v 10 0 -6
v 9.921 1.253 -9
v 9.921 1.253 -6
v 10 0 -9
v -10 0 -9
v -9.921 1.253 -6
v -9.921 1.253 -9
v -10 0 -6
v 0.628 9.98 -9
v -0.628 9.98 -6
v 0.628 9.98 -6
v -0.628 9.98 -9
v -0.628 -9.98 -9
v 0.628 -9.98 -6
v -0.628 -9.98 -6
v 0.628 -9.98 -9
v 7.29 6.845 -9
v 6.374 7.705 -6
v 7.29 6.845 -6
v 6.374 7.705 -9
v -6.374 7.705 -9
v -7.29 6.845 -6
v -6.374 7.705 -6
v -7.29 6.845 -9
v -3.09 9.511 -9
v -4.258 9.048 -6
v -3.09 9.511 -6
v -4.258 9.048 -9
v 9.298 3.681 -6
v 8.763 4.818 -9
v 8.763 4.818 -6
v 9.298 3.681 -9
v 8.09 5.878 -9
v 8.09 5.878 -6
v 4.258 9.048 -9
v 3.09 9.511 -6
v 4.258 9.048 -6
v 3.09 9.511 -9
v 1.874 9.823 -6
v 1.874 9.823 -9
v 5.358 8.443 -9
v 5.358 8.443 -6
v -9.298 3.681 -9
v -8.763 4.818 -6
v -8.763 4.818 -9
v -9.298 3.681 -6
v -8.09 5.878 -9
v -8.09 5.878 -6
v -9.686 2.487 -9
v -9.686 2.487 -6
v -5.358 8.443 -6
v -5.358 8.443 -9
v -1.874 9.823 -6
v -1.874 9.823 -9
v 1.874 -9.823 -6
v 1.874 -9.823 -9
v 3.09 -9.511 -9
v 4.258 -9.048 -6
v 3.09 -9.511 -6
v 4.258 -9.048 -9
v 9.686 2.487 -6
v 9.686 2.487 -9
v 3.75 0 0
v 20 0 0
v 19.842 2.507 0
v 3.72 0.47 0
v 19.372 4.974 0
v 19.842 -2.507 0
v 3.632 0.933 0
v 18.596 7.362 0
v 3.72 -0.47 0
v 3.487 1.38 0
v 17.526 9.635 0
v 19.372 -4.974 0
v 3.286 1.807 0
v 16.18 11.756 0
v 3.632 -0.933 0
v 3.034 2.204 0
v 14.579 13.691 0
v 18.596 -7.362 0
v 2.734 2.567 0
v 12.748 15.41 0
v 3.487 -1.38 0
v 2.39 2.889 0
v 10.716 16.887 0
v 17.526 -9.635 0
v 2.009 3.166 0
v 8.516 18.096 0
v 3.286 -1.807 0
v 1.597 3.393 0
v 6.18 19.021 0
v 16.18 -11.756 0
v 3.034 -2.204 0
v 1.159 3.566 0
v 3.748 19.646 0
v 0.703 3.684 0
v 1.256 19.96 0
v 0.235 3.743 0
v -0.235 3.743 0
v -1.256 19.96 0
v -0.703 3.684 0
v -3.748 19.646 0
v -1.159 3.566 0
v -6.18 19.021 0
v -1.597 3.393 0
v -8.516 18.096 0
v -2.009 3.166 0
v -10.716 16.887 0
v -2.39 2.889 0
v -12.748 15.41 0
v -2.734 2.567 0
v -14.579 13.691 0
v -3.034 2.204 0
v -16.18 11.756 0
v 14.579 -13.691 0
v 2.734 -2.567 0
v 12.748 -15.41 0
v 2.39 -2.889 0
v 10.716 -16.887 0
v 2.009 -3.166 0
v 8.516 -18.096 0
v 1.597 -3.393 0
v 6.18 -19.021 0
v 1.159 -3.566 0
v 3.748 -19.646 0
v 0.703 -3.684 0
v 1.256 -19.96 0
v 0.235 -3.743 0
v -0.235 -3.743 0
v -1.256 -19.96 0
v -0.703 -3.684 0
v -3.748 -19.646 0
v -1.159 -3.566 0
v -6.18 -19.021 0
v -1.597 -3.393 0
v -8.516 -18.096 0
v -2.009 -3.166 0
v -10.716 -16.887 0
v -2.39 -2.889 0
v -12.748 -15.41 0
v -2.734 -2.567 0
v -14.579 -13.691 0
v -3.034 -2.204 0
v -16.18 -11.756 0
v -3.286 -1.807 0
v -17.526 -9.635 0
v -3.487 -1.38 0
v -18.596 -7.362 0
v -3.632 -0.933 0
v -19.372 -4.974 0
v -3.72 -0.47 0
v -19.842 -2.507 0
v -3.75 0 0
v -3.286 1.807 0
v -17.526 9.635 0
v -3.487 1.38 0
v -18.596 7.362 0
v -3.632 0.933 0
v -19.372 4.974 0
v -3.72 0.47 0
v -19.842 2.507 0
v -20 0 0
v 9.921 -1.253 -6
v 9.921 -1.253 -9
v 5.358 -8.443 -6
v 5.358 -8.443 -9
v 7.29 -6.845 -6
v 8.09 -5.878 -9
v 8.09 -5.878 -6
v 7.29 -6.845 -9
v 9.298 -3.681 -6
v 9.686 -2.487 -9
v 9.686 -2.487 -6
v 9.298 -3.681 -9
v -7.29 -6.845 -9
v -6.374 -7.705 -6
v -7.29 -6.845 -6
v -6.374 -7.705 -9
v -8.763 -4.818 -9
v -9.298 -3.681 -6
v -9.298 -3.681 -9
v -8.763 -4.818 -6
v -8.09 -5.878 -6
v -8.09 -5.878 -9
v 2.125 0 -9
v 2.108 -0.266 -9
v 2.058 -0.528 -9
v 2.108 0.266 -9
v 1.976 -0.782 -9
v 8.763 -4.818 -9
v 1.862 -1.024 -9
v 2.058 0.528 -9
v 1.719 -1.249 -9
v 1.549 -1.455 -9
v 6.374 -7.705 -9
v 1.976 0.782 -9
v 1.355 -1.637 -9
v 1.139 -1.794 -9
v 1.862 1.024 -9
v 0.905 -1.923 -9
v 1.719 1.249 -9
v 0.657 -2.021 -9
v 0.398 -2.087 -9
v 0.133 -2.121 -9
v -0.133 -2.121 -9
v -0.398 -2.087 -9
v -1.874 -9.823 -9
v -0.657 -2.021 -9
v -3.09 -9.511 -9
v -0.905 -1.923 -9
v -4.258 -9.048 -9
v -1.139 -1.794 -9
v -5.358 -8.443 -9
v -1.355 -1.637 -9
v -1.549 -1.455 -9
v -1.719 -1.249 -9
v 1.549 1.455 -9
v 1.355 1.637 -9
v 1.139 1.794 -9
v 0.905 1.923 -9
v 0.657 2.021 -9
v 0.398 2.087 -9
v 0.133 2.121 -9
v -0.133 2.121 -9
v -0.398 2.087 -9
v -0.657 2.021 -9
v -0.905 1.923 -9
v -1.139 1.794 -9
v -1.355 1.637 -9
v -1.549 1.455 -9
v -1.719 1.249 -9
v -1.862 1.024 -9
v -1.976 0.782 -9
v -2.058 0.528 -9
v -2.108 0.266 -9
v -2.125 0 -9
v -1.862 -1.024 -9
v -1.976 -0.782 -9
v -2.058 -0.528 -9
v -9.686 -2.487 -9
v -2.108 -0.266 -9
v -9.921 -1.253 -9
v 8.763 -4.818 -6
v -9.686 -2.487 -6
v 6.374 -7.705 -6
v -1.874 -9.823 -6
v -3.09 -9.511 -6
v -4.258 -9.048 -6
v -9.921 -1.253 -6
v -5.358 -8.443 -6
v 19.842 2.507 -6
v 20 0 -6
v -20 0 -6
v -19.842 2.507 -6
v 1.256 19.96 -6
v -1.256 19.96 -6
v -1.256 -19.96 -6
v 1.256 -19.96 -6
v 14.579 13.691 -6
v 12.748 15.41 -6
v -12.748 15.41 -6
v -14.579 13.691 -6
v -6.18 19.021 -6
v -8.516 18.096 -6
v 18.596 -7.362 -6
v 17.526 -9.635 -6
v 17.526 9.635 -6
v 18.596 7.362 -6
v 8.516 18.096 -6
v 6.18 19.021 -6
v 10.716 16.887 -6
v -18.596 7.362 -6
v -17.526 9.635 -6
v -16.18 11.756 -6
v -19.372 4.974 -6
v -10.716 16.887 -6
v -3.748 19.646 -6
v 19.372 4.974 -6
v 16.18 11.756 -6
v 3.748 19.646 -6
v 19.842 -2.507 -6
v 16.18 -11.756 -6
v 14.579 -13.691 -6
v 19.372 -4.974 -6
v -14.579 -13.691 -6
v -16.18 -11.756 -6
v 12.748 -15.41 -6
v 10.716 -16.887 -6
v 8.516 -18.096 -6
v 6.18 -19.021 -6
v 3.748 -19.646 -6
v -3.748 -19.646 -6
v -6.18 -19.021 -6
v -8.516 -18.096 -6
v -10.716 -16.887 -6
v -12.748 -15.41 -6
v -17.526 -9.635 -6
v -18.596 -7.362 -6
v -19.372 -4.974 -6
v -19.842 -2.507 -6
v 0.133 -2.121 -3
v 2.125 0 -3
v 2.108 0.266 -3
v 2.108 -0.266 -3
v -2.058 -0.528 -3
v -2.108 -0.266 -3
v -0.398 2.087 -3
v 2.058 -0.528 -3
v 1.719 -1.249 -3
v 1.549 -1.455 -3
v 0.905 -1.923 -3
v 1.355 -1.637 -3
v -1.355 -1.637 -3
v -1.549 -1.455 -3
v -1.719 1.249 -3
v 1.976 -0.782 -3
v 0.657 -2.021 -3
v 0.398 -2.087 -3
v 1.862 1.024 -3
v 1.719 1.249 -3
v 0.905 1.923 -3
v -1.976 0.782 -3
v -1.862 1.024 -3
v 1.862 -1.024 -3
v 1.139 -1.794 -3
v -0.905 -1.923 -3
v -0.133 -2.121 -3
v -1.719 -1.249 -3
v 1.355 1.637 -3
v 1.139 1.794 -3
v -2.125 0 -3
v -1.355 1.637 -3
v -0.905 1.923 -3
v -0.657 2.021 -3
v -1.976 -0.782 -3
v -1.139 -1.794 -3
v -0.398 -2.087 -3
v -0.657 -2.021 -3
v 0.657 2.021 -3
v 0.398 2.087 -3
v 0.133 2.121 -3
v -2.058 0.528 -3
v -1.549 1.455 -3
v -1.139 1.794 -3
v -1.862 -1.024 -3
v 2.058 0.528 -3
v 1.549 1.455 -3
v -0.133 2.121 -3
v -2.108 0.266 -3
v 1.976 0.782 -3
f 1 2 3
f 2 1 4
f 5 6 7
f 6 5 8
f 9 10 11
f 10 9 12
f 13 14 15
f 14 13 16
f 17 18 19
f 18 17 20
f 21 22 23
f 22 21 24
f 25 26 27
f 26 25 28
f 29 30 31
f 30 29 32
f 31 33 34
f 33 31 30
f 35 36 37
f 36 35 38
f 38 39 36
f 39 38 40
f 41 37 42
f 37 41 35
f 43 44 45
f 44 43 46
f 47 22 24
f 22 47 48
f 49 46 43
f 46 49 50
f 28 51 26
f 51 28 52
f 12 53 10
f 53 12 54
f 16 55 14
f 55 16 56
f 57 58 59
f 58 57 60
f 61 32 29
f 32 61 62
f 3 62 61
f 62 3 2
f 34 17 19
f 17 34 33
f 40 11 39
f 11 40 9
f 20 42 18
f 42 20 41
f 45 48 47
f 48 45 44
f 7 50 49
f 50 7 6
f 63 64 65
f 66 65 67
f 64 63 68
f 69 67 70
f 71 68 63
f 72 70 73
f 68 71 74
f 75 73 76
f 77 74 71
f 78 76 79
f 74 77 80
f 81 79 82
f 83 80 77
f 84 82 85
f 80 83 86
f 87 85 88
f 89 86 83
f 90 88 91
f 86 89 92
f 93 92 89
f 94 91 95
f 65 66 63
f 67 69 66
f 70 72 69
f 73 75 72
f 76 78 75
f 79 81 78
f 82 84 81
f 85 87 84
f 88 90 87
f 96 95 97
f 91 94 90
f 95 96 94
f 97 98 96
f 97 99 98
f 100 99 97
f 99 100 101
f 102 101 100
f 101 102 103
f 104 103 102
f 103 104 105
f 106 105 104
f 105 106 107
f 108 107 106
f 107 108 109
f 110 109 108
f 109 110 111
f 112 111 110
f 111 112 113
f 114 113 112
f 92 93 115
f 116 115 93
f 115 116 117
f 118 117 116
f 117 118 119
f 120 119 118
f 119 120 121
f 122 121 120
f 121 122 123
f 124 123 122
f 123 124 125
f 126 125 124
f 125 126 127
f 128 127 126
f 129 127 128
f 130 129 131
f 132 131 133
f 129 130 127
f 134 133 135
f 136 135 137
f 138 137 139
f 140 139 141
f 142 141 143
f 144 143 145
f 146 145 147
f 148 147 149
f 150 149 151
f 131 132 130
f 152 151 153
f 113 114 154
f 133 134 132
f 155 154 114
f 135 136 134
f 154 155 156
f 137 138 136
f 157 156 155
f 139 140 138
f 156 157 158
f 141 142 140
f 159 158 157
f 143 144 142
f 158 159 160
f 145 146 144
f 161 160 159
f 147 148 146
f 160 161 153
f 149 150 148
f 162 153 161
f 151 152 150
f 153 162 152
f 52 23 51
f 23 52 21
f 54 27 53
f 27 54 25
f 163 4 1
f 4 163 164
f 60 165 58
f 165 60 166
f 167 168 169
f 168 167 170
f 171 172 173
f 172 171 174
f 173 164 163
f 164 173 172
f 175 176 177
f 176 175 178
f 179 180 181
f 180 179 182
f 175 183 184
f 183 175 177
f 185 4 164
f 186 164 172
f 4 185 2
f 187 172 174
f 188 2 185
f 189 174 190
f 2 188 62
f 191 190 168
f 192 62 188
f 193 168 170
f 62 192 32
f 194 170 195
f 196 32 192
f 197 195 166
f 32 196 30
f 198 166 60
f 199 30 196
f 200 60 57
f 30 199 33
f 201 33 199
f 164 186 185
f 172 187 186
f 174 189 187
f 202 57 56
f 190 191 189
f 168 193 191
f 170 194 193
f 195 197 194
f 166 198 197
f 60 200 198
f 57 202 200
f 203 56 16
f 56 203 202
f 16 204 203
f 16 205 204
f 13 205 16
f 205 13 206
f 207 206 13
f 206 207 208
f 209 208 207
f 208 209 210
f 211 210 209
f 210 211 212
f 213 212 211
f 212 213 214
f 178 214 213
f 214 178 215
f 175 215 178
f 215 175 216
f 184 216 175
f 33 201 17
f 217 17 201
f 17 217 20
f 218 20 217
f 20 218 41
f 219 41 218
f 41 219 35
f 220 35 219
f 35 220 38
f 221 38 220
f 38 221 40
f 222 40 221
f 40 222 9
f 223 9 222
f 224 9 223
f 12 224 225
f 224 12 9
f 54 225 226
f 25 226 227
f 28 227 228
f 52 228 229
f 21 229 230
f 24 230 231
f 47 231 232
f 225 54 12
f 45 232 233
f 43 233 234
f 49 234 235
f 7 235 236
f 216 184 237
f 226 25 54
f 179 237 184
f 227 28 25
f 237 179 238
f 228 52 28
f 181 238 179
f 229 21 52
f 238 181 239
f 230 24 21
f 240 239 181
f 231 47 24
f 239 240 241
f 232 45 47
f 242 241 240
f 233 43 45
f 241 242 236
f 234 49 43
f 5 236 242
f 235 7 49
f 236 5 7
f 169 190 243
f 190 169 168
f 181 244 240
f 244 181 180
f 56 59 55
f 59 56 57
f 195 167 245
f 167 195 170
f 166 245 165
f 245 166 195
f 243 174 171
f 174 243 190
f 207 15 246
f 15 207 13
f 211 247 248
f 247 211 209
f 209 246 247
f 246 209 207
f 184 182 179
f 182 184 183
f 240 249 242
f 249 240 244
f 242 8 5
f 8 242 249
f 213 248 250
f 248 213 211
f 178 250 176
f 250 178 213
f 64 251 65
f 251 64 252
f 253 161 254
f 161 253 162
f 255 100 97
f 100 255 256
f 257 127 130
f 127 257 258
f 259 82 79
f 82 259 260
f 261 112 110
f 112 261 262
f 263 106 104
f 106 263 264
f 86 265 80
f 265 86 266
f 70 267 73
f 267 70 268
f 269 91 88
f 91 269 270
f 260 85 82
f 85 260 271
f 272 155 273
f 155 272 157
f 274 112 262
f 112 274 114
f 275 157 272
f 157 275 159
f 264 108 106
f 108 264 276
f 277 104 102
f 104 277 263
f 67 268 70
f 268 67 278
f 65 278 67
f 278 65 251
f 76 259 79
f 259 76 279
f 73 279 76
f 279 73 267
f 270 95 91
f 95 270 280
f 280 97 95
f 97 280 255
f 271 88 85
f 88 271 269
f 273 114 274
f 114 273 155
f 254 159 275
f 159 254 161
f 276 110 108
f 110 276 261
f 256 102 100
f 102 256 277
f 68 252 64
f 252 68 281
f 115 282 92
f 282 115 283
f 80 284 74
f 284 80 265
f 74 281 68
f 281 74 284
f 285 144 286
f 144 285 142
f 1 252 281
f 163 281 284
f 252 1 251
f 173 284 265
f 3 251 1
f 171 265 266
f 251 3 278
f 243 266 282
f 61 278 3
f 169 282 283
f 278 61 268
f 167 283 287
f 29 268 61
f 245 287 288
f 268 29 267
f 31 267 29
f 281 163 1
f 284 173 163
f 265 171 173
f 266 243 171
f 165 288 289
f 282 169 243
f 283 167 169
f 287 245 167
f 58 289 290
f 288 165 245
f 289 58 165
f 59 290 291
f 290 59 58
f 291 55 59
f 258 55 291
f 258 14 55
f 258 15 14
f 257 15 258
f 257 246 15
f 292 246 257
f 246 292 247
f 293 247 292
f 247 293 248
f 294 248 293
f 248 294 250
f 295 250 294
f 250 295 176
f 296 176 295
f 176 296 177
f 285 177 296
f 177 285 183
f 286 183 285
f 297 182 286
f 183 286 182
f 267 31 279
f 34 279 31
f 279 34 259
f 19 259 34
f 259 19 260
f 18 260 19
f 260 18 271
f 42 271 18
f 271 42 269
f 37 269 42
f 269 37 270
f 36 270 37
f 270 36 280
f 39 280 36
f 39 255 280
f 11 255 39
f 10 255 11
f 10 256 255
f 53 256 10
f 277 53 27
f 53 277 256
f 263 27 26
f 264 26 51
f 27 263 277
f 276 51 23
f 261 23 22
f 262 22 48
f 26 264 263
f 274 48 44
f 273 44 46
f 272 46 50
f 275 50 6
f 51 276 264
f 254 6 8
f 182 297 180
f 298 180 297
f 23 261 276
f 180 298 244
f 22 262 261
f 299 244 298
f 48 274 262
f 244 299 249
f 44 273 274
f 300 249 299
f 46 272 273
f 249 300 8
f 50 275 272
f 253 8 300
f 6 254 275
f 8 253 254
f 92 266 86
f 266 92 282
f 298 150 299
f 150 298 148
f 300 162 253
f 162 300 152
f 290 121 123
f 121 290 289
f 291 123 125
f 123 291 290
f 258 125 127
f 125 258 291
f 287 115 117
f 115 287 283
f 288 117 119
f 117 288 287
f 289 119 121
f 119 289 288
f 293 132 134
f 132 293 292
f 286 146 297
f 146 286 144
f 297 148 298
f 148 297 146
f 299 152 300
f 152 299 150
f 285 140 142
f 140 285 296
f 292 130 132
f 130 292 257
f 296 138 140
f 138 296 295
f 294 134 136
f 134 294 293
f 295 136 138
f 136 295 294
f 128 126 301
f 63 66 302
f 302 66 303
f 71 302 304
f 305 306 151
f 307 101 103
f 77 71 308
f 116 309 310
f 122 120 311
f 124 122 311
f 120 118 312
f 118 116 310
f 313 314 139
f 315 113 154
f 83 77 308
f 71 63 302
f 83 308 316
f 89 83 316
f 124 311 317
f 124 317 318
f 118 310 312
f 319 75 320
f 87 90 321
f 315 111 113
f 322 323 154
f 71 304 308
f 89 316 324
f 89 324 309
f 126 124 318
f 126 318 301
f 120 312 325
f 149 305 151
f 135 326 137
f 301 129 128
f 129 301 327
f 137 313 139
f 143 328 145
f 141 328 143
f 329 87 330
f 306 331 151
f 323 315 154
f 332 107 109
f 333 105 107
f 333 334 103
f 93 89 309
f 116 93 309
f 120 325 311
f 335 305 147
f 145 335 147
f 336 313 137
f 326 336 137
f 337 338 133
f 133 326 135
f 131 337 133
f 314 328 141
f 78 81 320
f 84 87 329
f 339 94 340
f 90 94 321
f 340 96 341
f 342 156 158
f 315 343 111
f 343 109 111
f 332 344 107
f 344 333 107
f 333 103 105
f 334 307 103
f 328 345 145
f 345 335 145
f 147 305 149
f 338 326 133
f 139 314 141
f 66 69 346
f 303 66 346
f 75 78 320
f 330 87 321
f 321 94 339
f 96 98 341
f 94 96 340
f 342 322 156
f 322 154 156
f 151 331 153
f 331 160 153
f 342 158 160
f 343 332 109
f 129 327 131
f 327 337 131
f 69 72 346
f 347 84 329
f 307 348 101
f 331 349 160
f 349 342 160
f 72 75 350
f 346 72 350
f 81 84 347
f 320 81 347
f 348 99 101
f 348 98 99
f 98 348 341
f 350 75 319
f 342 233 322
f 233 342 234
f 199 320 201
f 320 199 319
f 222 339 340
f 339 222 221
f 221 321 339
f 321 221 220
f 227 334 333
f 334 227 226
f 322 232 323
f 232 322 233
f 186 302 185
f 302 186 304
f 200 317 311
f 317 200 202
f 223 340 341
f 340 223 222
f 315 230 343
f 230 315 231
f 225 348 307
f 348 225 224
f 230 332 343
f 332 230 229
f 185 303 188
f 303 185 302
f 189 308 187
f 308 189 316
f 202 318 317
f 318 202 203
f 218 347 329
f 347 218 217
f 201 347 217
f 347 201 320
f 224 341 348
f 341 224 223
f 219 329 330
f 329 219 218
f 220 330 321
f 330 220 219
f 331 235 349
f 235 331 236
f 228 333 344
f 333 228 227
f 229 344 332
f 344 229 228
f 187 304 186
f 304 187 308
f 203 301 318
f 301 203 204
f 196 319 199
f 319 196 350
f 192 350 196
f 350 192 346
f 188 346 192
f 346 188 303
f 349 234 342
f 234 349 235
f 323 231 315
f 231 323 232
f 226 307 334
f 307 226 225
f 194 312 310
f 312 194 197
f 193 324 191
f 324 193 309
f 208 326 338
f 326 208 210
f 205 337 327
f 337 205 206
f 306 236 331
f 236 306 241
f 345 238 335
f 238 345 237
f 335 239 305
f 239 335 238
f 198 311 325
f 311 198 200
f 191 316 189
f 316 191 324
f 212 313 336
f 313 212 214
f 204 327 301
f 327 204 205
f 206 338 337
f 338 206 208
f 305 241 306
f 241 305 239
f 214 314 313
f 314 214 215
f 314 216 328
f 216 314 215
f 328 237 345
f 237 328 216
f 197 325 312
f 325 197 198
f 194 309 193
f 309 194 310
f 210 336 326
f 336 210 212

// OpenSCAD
$fn = 50;


difference() {
	union() {
		translate(v = [0, 0, -9.0000000000]) {
			cylinder(h = 9, r = 10.0000000000);
		}
		translate(v = [0, 0, -6.0000000000]) {
			cylinder(h = 6, r = 20.0000000000);
		}
	}
	union() {
		translate(v = [0, 0, 0]) {
			rotate(a = [0, 0, 0]) {
				difference() {
					union() {
						#translate(v = [0, 0, -9.0000000000]) {
							cylinder(h = 9, r = 2.0000000000);
						}
						#translate(v = [0, 0, -3]) {
							cylinder(h = 3, r = 10.0000000000, r1 = 2.1250000000, r2 = 3.7500000000);
						}
						#translate(v = [0, 0, -9.0000000000]) {
							cylinder(h = 9, r = 2.1250000000);
						}
						#translate(v = [0, 0, -9.0000000000]) {
							cylinder(h = 9, r = 2.0000000000);
						}
					}
					union();
				}
			}
		}
	}
}
